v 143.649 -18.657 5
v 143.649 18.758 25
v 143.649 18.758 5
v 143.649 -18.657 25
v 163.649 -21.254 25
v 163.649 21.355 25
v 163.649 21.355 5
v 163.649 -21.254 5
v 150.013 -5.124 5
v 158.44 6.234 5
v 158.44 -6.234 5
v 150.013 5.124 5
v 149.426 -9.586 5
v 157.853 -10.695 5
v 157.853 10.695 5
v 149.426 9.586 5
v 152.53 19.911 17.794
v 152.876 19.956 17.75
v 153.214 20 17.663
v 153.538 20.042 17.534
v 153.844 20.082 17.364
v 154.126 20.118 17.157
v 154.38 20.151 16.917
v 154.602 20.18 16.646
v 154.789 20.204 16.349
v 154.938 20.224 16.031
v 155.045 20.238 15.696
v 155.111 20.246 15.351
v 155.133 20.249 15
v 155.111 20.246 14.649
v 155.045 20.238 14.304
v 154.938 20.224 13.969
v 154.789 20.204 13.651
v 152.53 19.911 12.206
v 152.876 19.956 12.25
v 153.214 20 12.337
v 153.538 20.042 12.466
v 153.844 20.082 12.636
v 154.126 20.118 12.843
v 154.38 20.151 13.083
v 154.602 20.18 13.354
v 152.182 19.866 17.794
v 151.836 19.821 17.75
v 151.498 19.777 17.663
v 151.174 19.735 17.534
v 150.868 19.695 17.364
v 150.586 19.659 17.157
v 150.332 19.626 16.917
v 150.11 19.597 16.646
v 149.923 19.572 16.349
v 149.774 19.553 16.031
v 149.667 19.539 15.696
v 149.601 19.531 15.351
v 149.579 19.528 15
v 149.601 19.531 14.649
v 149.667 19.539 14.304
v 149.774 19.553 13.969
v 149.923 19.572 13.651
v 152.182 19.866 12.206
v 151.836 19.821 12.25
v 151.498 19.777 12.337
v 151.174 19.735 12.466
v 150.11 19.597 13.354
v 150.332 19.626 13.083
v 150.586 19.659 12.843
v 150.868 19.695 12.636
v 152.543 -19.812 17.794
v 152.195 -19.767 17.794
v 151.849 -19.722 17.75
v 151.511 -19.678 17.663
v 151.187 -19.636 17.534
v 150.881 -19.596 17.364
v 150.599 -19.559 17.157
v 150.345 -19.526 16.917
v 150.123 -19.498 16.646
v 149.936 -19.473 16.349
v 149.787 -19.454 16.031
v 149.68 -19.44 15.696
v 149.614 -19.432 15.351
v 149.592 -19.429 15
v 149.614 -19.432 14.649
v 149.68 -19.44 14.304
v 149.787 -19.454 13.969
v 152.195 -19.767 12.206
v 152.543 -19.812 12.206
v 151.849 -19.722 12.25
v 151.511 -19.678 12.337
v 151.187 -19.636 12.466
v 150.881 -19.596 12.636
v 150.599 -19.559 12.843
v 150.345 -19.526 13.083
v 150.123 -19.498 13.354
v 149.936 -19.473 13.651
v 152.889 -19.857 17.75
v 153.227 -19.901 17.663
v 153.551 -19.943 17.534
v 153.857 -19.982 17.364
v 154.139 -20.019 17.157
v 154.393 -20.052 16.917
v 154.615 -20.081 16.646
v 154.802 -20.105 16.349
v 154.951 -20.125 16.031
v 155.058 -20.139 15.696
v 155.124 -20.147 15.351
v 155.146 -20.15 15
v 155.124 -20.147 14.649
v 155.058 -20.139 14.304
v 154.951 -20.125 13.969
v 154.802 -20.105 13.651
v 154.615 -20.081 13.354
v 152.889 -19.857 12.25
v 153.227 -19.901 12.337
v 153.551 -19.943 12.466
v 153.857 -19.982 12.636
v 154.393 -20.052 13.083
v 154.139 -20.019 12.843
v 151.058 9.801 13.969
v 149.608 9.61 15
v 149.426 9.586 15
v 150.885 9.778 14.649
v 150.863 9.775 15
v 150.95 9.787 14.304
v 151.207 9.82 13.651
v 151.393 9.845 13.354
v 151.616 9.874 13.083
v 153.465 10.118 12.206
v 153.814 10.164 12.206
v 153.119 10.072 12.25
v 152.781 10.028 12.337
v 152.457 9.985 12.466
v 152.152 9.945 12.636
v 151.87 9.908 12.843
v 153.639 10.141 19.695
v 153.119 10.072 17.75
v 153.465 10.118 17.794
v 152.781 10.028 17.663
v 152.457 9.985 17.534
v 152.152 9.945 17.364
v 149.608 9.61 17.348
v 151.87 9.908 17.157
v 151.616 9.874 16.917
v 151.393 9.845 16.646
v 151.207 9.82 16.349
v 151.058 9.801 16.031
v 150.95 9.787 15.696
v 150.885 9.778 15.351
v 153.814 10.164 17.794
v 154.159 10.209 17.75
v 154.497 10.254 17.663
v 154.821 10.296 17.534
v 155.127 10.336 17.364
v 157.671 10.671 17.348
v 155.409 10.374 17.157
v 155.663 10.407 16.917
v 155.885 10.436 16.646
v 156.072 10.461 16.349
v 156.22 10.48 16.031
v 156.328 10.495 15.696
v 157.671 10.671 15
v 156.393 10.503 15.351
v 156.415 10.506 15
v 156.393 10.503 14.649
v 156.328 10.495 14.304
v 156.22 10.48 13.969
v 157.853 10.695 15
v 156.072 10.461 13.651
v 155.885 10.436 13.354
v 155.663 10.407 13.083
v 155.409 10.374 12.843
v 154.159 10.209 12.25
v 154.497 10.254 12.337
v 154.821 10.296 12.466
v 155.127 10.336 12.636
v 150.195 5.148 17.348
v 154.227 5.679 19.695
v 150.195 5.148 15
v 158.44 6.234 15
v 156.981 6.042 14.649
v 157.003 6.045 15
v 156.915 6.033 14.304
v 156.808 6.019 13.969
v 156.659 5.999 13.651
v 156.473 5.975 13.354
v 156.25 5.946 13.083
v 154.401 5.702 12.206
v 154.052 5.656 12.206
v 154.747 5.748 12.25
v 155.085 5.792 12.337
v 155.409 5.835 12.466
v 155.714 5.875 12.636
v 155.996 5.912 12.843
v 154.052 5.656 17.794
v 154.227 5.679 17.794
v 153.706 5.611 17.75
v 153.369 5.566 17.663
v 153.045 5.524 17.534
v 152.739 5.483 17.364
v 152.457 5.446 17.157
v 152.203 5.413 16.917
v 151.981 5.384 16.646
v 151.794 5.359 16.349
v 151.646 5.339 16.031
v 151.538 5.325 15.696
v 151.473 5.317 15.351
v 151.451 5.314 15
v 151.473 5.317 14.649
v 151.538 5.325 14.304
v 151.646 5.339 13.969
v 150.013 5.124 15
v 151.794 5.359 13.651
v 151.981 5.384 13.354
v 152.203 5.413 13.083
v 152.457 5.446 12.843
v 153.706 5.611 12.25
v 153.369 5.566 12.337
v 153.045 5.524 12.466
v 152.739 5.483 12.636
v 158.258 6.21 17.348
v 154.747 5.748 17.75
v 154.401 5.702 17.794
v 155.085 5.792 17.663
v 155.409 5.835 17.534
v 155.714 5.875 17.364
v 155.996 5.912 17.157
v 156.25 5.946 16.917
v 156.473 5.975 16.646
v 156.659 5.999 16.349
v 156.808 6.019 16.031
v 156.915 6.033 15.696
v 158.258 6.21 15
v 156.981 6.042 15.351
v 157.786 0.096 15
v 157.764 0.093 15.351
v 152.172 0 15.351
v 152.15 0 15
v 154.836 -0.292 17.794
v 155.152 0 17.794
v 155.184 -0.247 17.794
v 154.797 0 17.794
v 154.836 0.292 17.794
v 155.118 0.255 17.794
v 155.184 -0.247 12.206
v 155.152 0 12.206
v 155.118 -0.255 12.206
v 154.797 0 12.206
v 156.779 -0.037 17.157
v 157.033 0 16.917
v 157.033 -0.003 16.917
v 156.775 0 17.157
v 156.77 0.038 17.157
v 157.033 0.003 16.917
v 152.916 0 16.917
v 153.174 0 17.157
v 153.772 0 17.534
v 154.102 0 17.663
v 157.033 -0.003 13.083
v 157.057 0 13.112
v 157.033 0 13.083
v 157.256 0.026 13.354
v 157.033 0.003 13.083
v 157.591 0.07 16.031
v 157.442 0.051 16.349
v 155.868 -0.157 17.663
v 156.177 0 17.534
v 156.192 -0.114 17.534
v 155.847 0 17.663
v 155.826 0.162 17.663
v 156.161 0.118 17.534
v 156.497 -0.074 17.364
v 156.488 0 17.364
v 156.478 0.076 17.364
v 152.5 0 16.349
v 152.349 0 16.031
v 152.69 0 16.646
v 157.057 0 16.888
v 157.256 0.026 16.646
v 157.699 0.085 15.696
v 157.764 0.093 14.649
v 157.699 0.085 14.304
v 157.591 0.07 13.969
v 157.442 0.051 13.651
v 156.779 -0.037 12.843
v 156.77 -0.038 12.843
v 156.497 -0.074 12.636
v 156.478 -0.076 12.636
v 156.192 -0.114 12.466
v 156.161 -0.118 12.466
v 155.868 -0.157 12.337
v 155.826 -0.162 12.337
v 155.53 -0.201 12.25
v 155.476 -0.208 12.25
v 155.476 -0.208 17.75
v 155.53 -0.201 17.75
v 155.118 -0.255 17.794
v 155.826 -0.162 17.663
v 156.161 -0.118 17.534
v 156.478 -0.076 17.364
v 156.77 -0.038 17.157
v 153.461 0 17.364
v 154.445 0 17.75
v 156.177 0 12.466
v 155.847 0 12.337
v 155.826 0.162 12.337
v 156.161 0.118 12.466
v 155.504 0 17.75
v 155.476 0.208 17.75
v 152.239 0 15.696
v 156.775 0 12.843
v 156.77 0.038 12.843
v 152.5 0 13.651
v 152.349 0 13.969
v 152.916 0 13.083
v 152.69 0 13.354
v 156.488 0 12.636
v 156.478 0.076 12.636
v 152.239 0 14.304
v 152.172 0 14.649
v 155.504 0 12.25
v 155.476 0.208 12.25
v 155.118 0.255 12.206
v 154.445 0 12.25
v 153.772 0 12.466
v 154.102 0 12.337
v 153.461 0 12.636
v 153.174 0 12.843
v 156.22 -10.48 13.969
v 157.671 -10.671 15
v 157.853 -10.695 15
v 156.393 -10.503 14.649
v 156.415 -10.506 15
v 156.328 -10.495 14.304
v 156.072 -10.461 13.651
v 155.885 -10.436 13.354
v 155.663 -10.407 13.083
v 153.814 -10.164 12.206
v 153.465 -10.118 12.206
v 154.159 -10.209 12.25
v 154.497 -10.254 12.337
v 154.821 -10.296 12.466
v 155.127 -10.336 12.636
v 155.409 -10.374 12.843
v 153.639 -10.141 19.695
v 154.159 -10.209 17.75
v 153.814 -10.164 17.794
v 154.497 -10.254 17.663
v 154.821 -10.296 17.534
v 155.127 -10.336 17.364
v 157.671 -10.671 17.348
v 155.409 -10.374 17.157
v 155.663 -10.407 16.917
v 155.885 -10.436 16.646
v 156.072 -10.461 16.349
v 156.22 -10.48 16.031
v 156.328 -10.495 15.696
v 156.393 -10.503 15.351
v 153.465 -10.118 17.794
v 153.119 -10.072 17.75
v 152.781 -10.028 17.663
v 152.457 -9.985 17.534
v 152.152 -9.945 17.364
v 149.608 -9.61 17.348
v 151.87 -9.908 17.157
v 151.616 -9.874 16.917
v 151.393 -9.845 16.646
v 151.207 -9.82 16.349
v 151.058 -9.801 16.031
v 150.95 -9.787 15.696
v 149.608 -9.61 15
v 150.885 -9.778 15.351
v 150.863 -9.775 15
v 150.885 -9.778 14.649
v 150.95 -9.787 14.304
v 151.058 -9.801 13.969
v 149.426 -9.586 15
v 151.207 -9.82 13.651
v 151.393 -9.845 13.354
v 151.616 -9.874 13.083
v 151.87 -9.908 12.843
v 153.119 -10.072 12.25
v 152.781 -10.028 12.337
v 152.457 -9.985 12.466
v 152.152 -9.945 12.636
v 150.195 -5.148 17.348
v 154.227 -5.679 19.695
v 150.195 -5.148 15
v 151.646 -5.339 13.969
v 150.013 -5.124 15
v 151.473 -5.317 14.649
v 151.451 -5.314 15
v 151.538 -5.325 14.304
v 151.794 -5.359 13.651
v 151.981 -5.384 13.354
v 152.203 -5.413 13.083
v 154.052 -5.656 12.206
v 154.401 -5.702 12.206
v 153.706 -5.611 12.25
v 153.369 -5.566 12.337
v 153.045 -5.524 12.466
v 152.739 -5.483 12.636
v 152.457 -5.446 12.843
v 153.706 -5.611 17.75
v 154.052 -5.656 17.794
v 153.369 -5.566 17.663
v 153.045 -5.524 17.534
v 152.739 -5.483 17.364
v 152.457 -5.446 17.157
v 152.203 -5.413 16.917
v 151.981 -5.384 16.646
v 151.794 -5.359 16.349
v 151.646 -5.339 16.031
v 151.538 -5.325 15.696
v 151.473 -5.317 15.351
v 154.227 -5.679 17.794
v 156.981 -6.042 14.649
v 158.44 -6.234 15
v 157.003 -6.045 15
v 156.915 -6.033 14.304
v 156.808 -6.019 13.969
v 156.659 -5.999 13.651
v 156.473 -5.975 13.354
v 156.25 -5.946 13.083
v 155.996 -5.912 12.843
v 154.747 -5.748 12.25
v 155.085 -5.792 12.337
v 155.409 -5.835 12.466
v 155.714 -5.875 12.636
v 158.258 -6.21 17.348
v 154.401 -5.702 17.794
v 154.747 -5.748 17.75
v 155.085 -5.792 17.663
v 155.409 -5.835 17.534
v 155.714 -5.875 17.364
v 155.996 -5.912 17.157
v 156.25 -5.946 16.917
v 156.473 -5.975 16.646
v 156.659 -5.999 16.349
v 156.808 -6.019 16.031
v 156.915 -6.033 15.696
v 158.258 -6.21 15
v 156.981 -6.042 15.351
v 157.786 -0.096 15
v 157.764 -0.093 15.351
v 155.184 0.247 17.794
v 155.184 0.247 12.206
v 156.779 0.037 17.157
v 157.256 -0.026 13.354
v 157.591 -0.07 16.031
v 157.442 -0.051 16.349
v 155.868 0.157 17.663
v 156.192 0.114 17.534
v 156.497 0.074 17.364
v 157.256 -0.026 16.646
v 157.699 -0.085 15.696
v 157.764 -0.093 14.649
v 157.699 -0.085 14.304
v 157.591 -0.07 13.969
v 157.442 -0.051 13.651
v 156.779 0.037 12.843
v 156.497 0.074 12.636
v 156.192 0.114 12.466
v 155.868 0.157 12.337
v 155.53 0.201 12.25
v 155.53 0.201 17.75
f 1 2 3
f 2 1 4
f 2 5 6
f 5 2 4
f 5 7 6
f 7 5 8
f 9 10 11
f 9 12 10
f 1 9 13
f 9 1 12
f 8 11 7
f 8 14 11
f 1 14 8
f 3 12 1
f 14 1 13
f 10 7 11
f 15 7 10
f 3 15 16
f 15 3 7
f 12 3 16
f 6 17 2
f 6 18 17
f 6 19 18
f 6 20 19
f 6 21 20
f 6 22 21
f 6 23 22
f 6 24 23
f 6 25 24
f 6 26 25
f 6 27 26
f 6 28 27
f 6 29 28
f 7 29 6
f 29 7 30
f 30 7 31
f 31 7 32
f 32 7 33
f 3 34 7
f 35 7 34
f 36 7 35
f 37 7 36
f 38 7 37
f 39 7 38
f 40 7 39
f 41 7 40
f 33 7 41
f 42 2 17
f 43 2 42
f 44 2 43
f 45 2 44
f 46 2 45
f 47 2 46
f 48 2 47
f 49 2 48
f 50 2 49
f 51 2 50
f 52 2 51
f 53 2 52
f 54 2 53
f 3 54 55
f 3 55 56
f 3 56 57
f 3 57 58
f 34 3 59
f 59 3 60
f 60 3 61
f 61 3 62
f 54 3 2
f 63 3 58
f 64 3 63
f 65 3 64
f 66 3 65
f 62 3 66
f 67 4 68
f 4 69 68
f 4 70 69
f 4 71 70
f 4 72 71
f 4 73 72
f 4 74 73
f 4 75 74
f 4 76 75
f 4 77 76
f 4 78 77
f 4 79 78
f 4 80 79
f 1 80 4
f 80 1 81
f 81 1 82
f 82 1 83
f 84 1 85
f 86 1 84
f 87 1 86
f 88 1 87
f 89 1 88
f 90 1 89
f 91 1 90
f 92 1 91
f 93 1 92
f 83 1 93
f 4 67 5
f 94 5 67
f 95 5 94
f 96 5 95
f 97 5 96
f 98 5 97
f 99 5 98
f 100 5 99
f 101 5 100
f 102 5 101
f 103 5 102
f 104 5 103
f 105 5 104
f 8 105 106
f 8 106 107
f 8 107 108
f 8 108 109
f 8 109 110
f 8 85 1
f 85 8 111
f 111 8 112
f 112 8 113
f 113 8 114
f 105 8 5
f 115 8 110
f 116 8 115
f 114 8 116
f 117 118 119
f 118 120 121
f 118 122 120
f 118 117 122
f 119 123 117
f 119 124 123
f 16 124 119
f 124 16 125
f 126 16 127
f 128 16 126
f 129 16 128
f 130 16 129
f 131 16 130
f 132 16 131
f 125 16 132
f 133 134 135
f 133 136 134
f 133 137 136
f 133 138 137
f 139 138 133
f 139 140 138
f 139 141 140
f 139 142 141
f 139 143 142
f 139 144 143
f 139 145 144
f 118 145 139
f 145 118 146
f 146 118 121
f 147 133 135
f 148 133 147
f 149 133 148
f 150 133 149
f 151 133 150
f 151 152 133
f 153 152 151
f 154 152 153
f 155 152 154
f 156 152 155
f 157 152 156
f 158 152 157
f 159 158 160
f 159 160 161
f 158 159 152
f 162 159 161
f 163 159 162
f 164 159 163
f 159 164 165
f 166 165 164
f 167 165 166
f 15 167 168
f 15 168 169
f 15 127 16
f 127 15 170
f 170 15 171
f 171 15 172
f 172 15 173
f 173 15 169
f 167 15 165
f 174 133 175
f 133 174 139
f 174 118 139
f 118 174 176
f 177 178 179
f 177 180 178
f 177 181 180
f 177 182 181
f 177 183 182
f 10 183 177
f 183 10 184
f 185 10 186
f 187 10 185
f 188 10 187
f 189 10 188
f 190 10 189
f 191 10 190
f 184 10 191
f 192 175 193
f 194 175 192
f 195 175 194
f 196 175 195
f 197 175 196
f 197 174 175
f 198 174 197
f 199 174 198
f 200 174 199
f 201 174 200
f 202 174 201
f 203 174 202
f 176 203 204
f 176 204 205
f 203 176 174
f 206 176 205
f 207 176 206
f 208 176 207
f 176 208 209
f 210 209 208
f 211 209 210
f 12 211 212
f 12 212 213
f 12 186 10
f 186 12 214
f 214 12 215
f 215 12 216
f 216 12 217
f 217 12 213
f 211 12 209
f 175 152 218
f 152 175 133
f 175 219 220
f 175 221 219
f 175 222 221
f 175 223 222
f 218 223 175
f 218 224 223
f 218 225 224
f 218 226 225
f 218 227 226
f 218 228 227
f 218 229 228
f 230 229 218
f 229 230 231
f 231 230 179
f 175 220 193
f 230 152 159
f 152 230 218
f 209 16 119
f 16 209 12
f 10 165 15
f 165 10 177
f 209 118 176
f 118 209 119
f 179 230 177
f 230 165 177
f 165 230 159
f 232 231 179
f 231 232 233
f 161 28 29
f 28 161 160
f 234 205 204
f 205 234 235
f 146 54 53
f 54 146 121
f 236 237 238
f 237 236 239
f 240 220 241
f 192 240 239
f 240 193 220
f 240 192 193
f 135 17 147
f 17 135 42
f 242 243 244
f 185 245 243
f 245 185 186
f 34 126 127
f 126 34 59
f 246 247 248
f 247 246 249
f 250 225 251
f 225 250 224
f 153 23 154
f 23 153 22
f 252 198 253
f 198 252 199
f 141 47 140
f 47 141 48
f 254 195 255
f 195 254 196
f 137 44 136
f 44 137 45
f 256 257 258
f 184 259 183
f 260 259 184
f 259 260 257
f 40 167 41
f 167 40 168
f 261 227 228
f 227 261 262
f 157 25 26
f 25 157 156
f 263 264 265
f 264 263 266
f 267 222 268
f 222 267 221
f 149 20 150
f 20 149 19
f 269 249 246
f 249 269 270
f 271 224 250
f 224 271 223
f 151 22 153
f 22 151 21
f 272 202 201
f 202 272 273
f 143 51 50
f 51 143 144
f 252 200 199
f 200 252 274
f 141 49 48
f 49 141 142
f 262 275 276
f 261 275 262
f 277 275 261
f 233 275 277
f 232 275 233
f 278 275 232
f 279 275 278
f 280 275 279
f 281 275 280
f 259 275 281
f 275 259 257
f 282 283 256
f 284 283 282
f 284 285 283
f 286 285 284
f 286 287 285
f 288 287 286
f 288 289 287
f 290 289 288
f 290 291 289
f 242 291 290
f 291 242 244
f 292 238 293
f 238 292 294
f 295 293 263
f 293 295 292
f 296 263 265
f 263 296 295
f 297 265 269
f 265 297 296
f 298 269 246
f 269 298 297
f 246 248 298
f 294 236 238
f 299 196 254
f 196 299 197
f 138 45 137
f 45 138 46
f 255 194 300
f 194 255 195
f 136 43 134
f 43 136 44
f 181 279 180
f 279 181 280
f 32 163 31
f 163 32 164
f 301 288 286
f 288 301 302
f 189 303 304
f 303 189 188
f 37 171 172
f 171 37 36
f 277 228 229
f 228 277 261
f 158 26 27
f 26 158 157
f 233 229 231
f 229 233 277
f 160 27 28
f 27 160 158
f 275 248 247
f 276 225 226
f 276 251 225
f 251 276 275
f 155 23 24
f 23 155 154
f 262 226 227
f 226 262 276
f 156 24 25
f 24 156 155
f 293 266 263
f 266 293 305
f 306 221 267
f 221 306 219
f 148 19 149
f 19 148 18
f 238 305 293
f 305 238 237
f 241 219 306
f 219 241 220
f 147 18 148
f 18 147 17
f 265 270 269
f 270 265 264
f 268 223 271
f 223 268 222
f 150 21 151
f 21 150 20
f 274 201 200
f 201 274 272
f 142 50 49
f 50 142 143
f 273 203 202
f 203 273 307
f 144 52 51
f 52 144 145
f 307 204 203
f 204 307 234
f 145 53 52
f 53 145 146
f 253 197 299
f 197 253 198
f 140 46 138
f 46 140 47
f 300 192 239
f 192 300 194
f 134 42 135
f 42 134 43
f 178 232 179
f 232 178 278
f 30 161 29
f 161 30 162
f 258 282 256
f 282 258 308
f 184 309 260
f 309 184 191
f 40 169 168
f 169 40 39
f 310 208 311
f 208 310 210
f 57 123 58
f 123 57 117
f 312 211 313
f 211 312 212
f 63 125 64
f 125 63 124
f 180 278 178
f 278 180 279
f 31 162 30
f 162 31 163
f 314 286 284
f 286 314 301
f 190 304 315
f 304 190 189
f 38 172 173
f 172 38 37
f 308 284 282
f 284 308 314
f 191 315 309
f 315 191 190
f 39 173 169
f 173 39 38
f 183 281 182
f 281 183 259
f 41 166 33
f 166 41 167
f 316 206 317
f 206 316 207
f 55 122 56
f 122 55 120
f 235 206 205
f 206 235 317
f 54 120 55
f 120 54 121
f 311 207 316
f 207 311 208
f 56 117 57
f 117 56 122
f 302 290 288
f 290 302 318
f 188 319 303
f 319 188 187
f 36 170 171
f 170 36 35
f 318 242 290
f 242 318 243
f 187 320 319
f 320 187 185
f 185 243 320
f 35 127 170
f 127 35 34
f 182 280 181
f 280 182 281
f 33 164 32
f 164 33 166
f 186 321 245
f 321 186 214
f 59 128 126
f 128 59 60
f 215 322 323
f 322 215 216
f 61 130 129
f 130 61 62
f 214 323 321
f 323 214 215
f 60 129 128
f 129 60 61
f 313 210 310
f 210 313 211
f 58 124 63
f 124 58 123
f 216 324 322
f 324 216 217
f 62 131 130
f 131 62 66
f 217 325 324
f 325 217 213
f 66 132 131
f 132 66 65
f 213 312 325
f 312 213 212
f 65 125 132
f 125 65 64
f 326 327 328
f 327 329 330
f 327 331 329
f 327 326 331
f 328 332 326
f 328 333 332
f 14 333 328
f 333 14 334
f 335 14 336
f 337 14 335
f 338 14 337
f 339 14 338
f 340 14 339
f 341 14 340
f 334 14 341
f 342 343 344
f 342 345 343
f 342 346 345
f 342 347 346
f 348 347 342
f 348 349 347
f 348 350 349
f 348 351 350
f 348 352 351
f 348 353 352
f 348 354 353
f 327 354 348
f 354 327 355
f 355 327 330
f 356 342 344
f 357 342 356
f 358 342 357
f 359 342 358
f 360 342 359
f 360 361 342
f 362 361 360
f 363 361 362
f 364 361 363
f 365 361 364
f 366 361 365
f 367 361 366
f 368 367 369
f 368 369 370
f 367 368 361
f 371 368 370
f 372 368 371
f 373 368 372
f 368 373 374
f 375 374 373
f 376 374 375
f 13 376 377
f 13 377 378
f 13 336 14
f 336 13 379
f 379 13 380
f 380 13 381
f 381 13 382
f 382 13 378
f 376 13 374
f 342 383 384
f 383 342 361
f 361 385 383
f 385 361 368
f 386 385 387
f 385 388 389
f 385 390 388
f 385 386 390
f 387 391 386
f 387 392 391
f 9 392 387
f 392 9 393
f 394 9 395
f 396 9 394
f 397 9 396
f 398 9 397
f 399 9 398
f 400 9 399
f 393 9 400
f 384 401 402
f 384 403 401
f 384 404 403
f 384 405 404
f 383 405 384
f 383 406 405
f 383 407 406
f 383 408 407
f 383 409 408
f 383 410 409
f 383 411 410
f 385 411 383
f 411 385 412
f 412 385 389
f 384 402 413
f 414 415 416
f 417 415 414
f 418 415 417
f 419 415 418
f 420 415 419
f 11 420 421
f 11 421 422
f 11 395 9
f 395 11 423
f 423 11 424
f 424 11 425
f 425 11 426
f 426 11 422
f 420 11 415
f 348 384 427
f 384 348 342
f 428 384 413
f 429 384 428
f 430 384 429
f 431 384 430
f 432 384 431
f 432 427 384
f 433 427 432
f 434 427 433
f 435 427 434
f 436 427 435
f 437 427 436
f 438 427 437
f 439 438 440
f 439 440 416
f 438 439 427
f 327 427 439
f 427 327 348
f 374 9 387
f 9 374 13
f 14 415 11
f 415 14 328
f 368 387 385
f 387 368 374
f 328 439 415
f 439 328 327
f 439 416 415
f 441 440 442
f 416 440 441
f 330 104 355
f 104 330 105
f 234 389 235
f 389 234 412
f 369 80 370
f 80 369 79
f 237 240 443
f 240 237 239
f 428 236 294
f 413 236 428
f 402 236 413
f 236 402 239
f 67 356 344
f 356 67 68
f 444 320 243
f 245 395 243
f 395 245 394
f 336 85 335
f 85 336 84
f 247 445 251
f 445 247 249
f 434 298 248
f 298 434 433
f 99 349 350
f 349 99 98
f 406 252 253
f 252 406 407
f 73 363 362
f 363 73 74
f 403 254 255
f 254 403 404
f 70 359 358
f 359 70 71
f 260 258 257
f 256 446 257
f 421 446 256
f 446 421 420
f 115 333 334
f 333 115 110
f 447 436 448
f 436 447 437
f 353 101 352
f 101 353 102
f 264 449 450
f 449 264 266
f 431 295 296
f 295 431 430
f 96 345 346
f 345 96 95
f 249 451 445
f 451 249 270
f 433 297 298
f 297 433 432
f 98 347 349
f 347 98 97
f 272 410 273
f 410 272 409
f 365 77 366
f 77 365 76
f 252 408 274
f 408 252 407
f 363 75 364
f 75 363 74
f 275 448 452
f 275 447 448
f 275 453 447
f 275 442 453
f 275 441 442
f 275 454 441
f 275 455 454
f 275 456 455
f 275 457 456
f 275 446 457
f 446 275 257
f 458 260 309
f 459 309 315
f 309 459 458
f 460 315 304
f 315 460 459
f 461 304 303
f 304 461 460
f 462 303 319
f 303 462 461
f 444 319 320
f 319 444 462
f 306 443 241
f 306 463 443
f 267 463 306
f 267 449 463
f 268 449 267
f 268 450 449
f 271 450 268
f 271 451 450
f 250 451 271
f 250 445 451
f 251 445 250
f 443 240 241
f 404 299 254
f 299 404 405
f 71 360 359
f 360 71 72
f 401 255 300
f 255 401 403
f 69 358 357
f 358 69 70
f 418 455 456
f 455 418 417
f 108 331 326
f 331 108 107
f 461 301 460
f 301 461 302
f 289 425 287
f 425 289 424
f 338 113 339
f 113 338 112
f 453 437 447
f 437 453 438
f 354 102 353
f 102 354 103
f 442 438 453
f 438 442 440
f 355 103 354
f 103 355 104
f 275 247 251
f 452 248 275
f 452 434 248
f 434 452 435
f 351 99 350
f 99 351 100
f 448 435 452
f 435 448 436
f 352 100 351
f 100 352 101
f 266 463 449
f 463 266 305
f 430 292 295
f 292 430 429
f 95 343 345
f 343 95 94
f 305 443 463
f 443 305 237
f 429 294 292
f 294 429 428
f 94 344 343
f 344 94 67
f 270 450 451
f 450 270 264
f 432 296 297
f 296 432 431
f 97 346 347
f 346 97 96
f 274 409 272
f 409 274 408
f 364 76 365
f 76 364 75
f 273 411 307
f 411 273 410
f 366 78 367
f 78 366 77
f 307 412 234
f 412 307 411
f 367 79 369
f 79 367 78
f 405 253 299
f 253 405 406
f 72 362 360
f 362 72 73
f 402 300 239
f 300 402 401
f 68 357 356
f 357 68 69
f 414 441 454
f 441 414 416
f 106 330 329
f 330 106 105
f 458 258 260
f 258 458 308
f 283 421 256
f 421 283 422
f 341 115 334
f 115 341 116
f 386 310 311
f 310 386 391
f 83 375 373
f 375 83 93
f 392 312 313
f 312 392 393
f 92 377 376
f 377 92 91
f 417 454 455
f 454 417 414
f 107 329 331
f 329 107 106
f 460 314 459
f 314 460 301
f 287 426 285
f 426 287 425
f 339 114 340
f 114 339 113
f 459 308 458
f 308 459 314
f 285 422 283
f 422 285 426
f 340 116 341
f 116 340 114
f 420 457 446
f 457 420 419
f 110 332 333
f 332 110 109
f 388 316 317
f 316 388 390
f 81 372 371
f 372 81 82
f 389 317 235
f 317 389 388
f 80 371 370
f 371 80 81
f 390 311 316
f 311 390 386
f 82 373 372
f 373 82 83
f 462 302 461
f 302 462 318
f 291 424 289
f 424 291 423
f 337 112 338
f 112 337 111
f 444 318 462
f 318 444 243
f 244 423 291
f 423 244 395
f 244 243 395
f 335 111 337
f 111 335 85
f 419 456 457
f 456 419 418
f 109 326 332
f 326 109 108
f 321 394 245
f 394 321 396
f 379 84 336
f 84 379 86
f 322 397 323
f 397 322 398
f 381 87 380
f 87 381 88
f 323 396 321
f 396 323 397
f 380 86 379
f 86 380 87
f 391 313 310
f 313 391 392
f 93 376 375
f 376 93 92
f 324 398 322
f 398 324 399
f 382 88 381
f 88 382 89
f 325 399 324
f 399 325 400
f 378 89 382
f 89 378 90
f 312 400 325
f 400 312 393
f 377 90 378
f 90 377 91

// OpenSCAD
difference() {
	intersection() {
		translate(v = [143.6485188534, -100, 5]) {
			cube(size = [20, 200, 20]);
		}
		hull() {
			rotate(a = [0, 0, 7.4000000000]) {
				cube(size = [500, 0.1000000000, 30.0500000000]);
			}
			rotate(a = [0, 0, -7.4000000000]) {
				cube(size = [500, 0.1000000000, 30.0500000000]);
			}
		}
	}
	mirror(v = [0, 0, 0]) {
		translate(v = [0, 0, 15.0000000000]) {
			rotate(a = [0, 0, 7.5000000000]) {
				translate(v = [153.6485188534, 0, 0]) {
					rotate(a = [90, 0, 0]) {
						union() {
							translate(v = [0, 0, false]) {
								cylinder($fn = 50, d = 5.6000000000, h = 20.5000000000);
							}
							translate(v = [0, 0, -15.4500000000]) {
								cylinder($fn = 50, d = 9.2000000000, h = 15.5000000000);
							}
							translate(v = [0, 0, 10]) {
								rotate(a = [90, 0, 0]) {
									union() {
										rotate(a = [-90, 90, 0]) {
											cylinder($fn = 6, d = 9.3900000000, h = 4.5000000000);
										}
										translate(v = [-4.2500000000, 0, 0]) {
											cube(size = [8.5000000000, 4.5000000000, 100]);
										}
									}
								}
							}
						}
					}
				}
			}
		}
	}
	mirror(v = [0, 180, 0]) {
		translate(v = [0, 0, 15.0000000000]) {
			rotate(a = [0, 0, 7.5000000000]) {
				translate(v = [153.6485188534, 0, 0]) {
					rotate(a = [90, 0, 0]) {
						union() {
							translate(v = [0, 0, false]) {
								cylinder($fn = 50, d = 5.6000000000, h = 20.5000000000);
							}
							translate(v = [0, 0, -15.4500000000]) {
								cylinder($fn = 50, d = 9.2000000000, h = 15.5000000000);
							}
							translate(v = [0, 0, 10]) {
								rotate(a = [90, 0, 0]) {
									union() {
										rotate(a = [-90, 90, 0]) {
											cylinder($fn = 6, d = 9.3900000000, h = 4.5000000000);
										}
										translate(v = [-4.2500000000, 0, 0]) {
											cube(size = [8.5000000000, 4.5000000000, 100]);
										}
									}
								}
							}
						}
					}
				}
			}
		}
	}
}
/***********************************************
*********      SolidPython code:      **********
************************************************
 
cq = 50
render = False

import os
os.environ["PRINTEDSCOPE_QUALITY"] = str(cq)

from lib.model_parameters import *
from solid import *
from solid.utils import *
import numpy as np


def s111g2p01():
    m = cylinder(h=g2p2_thickness+g2p03_guider_bolt['dk'], d=g2p2_border_ind+2*g2p2_border_thickness, segments=cq)
    m-= up(g2p2_thickness+5)(cylinder(d=g2p2_border_ind, h=g2p03_guider_bolt['dk']*1.5+clear, segments=cq))
    m-= (up(g2p2_thickness)(cylinder(d1=g2p2_border_ind-10, d2=g2p2_border_ind, h=5+clear, segments=cq)))
    
    for i in range(8):
        m-=rotate([0,0,360/8*i])(
            translate([g2p2_border_ind/2,0,g2p2_thickness+g2p03_guider_bolt['dk']*0.5])(
                (bolt_hole(g2p03_guider_bolt, align='head', rotation=[0,-1,0]))
            ),
            translate([g2p2_border_ind/2+g2p2_border_wall,-50,0])(
                (cube(100))
            )
        )

    m+= cylinder(h=g2p2_thickness+g2p03_guider_bolt['dk'], d=24, segments=cq)
    m-= up(clear)(cylinder(h=g2p2_thickness+g2p03_guider_bolt['dk'], d=M5['d'], segments=cq))
    m-= rotate(30)(down(clear)(cylinder(h=g2p2_thickness+g2p03_guider_bolt['dk']+clear-5, d=M5['e'], segments=6)))

    for i in range(3):
        m-=rotate([0,0,360/3*i])(
            translate([8, 0, -clear])(
                cylinder(h=M3['k'], d=M3['dk'], segments=cq),
                cylinder(h=50, d=M3['d'], segments=cq),
                )
        )

    return m

def s111g2p02():
    m = cylinder(h=4, d=24, segments=cq)
    #m-= up(g2p2_thickness+5)(cylinder(d=g2p2_border_ind, h=g2p03_guider_bolt['dk']*1.5+clear, segments=cq))
    #m-= (up(g2p2_thickness)(cylinder(d1=g2p2_border_ind-10, d2=g2p2_border_ind, h=5+clear, segments=cq)))
    
    for i in range(8):
        m-=rotate([0,0,360/8*i])(
            translate([g2p2_border_ind/2,0,g2p2_thickness+g2p03_guider_bolt['dk']*0.5])(
                (bolt_hole(g2p03_guider_bolt, align='head', rotation=[0,-1,0]))
            ),
            translate([g2p2_border_ind/2+g2p2_border_wall,-50,0])(
                (cube(100))
            )
        )

    #m+= cylinder(h=5, d=10)
    m+= (rotate(30)(cylinder(h=6, d2=M5['d']+4, d1=M5['d']+6, segments=cq)))
    m-= (rotate(30)(cylinder(h=3, d=M5['e'], segments=6)))
    m-= (rotate(30)(cylinder(h=10, d=M5['d'], segments=cq)))

    for i in range(3):
        m-=rotate([0,0,360/3*i])(
            translate([8, 0, -clear])(
                up(2)(rotate(30)(cylinder(h=M3['k'], d=M3['e'], segments=6))),
                cylinder(h=50, d=M3['d'], segments=cq)
                )
        )

    return m

def s111g2p03():
    m = cube(0)

    # lista pro pohyb lozisek AZ
    m+= down(0)(
            cylinder(d=g2_octangle_do+g2p03_guider_width, h=g2p03_guider_height, segments=cq)
        )
    m-= (down(clear)(
            cylinder(d=g2_octangle_do-g2p03_guider_width, h=g2p03_guider_height+clear*2+10, segments=cq)
        ))

    # krajni listy do stredu s dirou pro srouby
    m+= (rotate([0, 0, -360/24])(
            right(g2p03_middle_diameter/2-15)(
                cube([(g2_octangle_do-g2p03_middle_diameter), g2p03_guider_width, g2p03_guider_height])
            )
        ))
    m+= rotate([0, 0, 360/24])(
            right(g2p03_middle_diameter/2-15)(
                back(g2p03_guider_width)(
                    cube([(g2_octangle_do-g2p03_middle_diameter), g2p03_guider_width+1, g2p03_guider_height])
                )
            )
        )
    # Stredni lista dilu
    m+= (right(g2p03_middle_diameter/2-g2p03_guider_height)(
            back(50)(
                cube([g2p03_guider_width, 100, g2p03_guider_height])
            )
        ))

    p_bolt = g2p03_guider_bolt


    mount_a = cube([p_bolt['dk']*2, p_bolt['l']/2+p_bolt['k']-clear, p_bolt['dk']*2])
    mount_a-= translate([p_bolt['dk'], p_bolt['l']/2+clear, p_bolt['dk']])(
            rotate([90, 0, 0])(
                cylinder(h=p_bolt['l'], d=p_bolt['d'], segments=cq)
            )
        )
    mount_a-= translate([p_bolt['dk'], p_bolt['l']/2+p_bolt['l'], p_bolt['dk']])(
            rotate([90, 0, 0])(
                cylinder(h=p_bolt['l'], d=p_bolt['dk'], segments=cq)
            )
        )

    mount_a = rotate([0, 0, -360/12])(
            right(g2_guider_diameter/2-p_bolt['dk']*2-g2p03_guider_height)(
                mount_a
                )
            )

    mount_b = cube([p_bolt['dk']*2, p_bolt['l']/2-clear, p_bolt['dk']*2])
    mount_b-= translate([p_bolt['dk'], p_bolt['l']/2+clear, p_bolt['dk']])(
            rotate([90, 0, 0])(
                cylinder(h=p_bolt['l'], d=p_bolt['d'], segments=cq)
            )
        )
    mount_b-= translate([p_bolt['dk'], p_bolt['m'], p_bolt['dk']])(
            rotate([0, -90, 0])(
                nut_pocket(p_bolt)
            )
        )

    mount_b = rotate([0, 0, 360/12])(
                right(g2_guider_diameter/2-p_bolt['dk']*2-g2p03_guider_height)(
                    back(p_bolt['l']/2)(
                        mount_b
                    )
                )
            )


    m += up(g2p03_floar_thickness)(mount_a)
    m += up(g2p03_floar_thickness)(mount_b)


    # oriznuti precnivajicich casti mimo osmiuhelnik
    m = intersection()(
        m,
        up(-250)(hull()(
            rotate([0, 0, 360/24])(cube([500, 0.1, 500])),
            rotate([0, 0, -360/24])(cube([500, 0.1, 500]))
        ))
    )
    m=intersection()(
        m,
        cylinder(d=g2_octangle_do+g2p03_guider_width, h=100, segments=cq)
    )


    p_bolt['l'] = 20
    for x in [0,180]:
        m -= mirror([0, x, 0])(
            up(g2p03_guider_height/2)(
                rotate([0,0,-360/24])(
                    translate([g2_octangle_do/2-g2p03_guider_height, 10, 0])(
                        (bolt_hole(p_bolt, rotation=[-1,0,0], align='begin'))
                    )
                ),
                rotate([0,0,360/24])(
                    translate([g2_octangle_di/2-g2p03_guider_height*2.5, -10, 0])(
                        (bolt_hole(p_bolt, rotation=[1,0,0], align='begin'))
                    )
                ),
                rotate([0,0,360/24])(
                    translate([g2_octangle_do/2, -10, 0])(
                        (bolt_hole(p_bolt, rotation=[1,0,0], align='begin', head_overlap = 100))
                    )
                )
            )
        )

    m-= (translate([g2p03_middle_diameter/2-g2p03_guider_height+10, 0, g2p03_guider_height/2])(
            bolt_hole(p_bolt, rotation=[0,1,0], align='begin')
        ))
    #m+= cylinder(d=g2p03_middle_diameter-20, )

    return m

def s111g2m05():


    p_bolt = M8.copy()


    m = cube(0)
    p_bolt['l'] = 20
    for x in [0,180]:
        m += mirror([0, x, 0])(
            up(g2p03_guider_height/2)(
                rotate([0,0,-360/24])(
                    translate([g2_octangle_do/2-g2p03_guider_height, 10, 0])(
                        (bolt_hole(p_bolt, rotation=[-1,0,0], align='begin'))
                    )
                ),
                rotate([0,0,360/24])(
                    translate([g2_octangle_di/2-g2p03_guider_height*2.5, -10, 0])(
                        (bolt_hole(p_bolt, rotation=[1,0,0], align='begin'))
                    )
                ),
                rotate([0,0,360/24])(
                    translate([g2_octangle_do/2, -10, 0])(
                        (bolt_hole(p_bolt, rotation=[1,0,0], align='begin', head_overlap = 100))
                    )
                )
            )
        )

    m+= (translate([g2p03_middle_diameter/2-g2p03_guider_height+10, 0, g2p03_guider_height/2])(
            bolt_hole(p_bolt, rotation=[0,1,0], align='begin')
        ))

    return m

def s111g2p08_pipe_rectangle(l = 100, angle = False):
    shift = 0
    if angle: shift = base_pipe['D']
    m = translate([-shift, -base_pipe['D']/2-5, -3])(
            cube([l+shift, base_pipe['D']+10, 4]),
            translate([0,base_pipe['D']/2+5,base_pipe['D']/2+5])(
                rotate([0,90,0])(
                    cylinder(d=base_pipe['D']+8, h=l+shift, segments=cq)
                )
            )
    )
    m = hull()(m)

    m-= translate([-shift, -base_pipe['D']/2-2, -2])(
            translate([0,base_pipe['D']/2+2,base_pipe['D']/2+2])(
                rotate([0,90,0])(
                    cylinder(d=base_pipe['D'], h=l+shift+1, segments=cq)
                )
            )
    )

    m-= (translate([l/2,0,base_pipe['D']+1])(
                bolt_hole(M4, align='begin', l=19, nut_type='trougth', nut = -0.1)
            )
        )
    m+= (translate([l/2-5,-5,-3])(
        cube([10, 10, layer])
        ))

    if angle:
        m-= rotate([0,0,45])(translate([-50, 0, -50])(cube(100)))
    return m

def s111g2p08_a():
    m = s111g2p03()
    
    # Dily pro pridelani trubek skrz
    m+= intersection()(
            translate([g2_octangle_do/2-6, 0, g2p03_guider_height])(
                rotate([0,0,+45+90])(
                    left(15)(s111g2p08_pipe_rectangle(l=100, angle = 0))
                )
            ),
            (cube(300))
        )
    m+= intersection()(
            translate([g2_octangle_do/2-6, 0, g2p03_guider_height])(
                rotate([0,0,-45-90])(
                    left(15)(s111g2p08_pipe_rectangle(l=100, angle = 0)),
                )
            ),
            (back(300)(cube(300)))
        )
    
    # kostka pro lepší tisk podpory na spodní straně.
    m+= (translate([g2_octangle_do/2-6, 0, g2p03_guider_height])(
            rotate([0,0,-45-90])(
                translate([-10,-base_pipe['D']/2-5, -3-layer])(cube([200, base_pipe['D']+10, layer]))
        )))

    m=intersection()(
        m,
        cylinder(d=g2_octangle_do+g2p03_guider_width, h=100, segments=cq)
    )


    ##
    ## Cast pro pridelani svisle tyce
    ##



    vect = np.array([30, 400/2+15, 600]) - np.array([g2_octangle_di-40, g2_octangle_di+30, g2p03_guider_height])
    vect = np.array([g2_octangle_di/2 - 50, g2_octangle_di/2 - 370/2 - 50, 600 - g2p03_guider_height])

    vect = np.array([g2_octangle_di/2 - 20, g2_octangle_di/2+30, g2p03_guider_height]) - np.array([0, g2_axis_distance/2+15, telescope_axis_height])
    vect *= [1,1,-1]
    rvect = get_rotation(vect)+[0,0,180]



    print("VECT")
    print(vect)
    print(rvect)

    wall = 5

    ##
    ##  posuv dilu pro tyce - [f/2-20, f/2+30, guider_height]
    ##
    ##

    m += rotate([0,0,0]+np.array([0,0,-45]))(
            translate([g2_octangle_f/2-20, g2_octangle_f/2+30, 0])(
                rotate([0,0,0])(
                    difference()(
                        cylinder(d=base_pipe['D']+3*wall, h=g2p03_guider_height+5, segments=cq),
                    )
                )
            ),

            translate([g2_octangle_f/2-20, g2_octangle_f/2+30, g2p03_guider_height])(
                rotate(rvect-[0,0,0])(
                    difference()(
                        cylinder(d=base_pipe['D']+2*wall, h=5, segments=cq),
                        cylinder(d=base_pipe['D'], h=5, segments=cq)
                    )
                )
            )
        ) - cylinder(d=g2_octangle_do+g2p03_guider_width, h=g2p03_guider_height, segments=cq)


    m -= rotate([0,0,0]+np.array([0,0,-45]))(
            translate([g2_octangle_f/2-20, g2_octangle_f/2+30, g2p03_guider_height])(
                rotate(rvect-[0,0,0])(
                    up(2)(
                        (cylinder(d=base_pipe['D'], h=50, segments=cq))
                    ),
                    up(-50)(
                        (cylinder(d=M5['d'], h=100, segments=cq))
                    ),
                    up(-50-5+2)(
                        (cylinder(d=M5['dk']+1, h=50, segments=cq))
                    )

                )
            )
        )


    m = intersection()(
        m,
        up(-250)(hull()(
            rotate([0, 0, 360/24])(cube([500, 0.1, 500])),
            rotate([0, 0, -360/24])(cube([500, 0.1, 500]))
        ))
    )

    return m


def s111g2p08_b():
    return mirror([1,0,0])(s111g2p08_a())


def s111g2p08_c():
    m = s111g2p08_a()
    

    vect2 = np.array([g2_octangle_di/2 + 30, g2_octangle_di/2 - 20, g2p03_guider_height]) - np.array([0, -g2_axis_distance/2-15, telescope_axis_height])
    vect2 *= [1,1,-1]
    rvect2 = get_rotation(vect2)+[0,0,180]

    wall = 5

    ##
    ##  posuv dilu pro tyce - [f/2-20, f/2+30, guider_height]
    ##
    ##

    m += rotate([0,0,0]+np.array([0,0,-45]))(
            translate([g2_octangle_f/2+30, g2_octangle_f/2-20, 0])(
                rotate([0,0,0])(
                    difference()(
                        cylinder(d=base_pipe['D']+3*wall, h=g2p03_guider_height+5, segments=cq),
                    )
                )
            ),

            translate([g2_octangle_f/2+30, g2_octangle_f/2-20, g2p03_guider_height])(
                rotate(rvect2-[0,0,0])(
                    difference()(
                        down(5)(cylinder(d=base_pipe['D']+2*wall, h=10, segments=cq)),
                        cylinder(d=base_pipe['D'], h=5, segments=cq)
                    )
                )
            )
        ) - cylinder(d=g2_octangle_do+g2p03_guider_width, h=g2p03_guider_height, segments=cq)


    m -= rotate([0,0,0]+np.array([0,0,-45]))(
            translate([g2_octangle_f/2+30, g2_octangle_f/2-20, g2p03_guider_height])(
                rotate(rvect2-[0,0,0])(
                    up(2)(
                        (cylinder(d=base_pipe['D'], h=50, segments=cq))
                    ),
                    up(-50)(
                        (cylinder(d=M5['d'], h=100, segments=cq))
                    ),
                    up(-50-5+2)(
                        (cylinder(d=M5['dk']+1, h=50, segments=cq))
                    )

                )
            )
        )

    return m


def s111g2p08_d():
    return mirror([1,0,0])(s111g2p08_c())


def s111g2d08(l=100):
    m = back(20)(
            cube([base_pipe['D']*2, 80, base_pipe['D']*2], center=True)
        )
    m-= translate([0,0,base_pipe['D']*0.75])(
            rotate(-45)(
                cube([2, 100, base_pipe['D']*2.5], center=True)
            )
        )
    m-= translate([0, base_pipe['D']/2+1, 0])(
            rotate([90,0,0])(cylinder(d=base_pipe['D'], h=200, segments=cq))
        )
    m-= translate([0,-l/2, 0])(
            cylinder(h=100, d=M4['d'], center=True, segments=cq)
        )
    #m = s111g2p08_pipe_rectangle(angle = 45)
    return m


def s111g2d09(l=100):
    m = cube([base_pipe['D']*2, 40, base_pipe['D']*2], center=True)
    
    m-= (translate([0, 100, 0])(
            rotate([90,0,0])(cylinder(d=base_pipe['D'], h=200, segments=cq))
        ))

    m-= translate([0,0, 0])(
            cylinder(h=100, d=M4['d'], center=True, segments=cq)
        )
    #m = s111g2p08_pipe_rectangle(angle = 45)
    return m

def s111g2p09():
    m = s111g2p03()

    a = (g2_octangle_do/2-6)/math.sqrt(2)

    m += translate([a, -75, g2p03_guider_height])(
            rotate([0,0,90])(
                s111g2p08_pipe_rectangle(l=150)
            )
        )
    m = intersection()(
        m,
        up(-250)(hull()(
            rotate([0, 0, 360/24])(cube([500, 0.1, 500])),
            rotate([0, 0, -360/24])(cube([500, 0.1, 500]))
        ))
    )
    return m

def s111g2p04():
    m= down(0)(
            cylinder(d=g2_octangle_do+g2p03_guider_width, h=g2p03_guider_height, segments=cq)
        )
    m-= (down(clear)(
            cylinder(d=g2_octangle_di-g2p03_guider_width*2, h=g2p03_guider_height+clear*2, segments=cq)
        ))

    r= up(g2p03_guider_height/2+g2p03_guider_bolt['dk'])(
            cylinder(d=g2_octangle_do-g2p03_guider_width, h=g2p03_guider_height, segments=cq)
        )

    m -= (r)
    m = intersection()(
        m,
        (hull()(
            rotate([0, 0, 360/48-0.1])(cube([500, 0.1, g2p03_guider_height+clear])),
            rotate([0, 0, -360/48+0.1])(cube([500, 0.1, g2p03_guider_height+clear]))
        ))
    )


    bolt = g2p03_guider_bolt.copy()
    bolt['l'] = 5
    for x in [0,180]:
        m -= mirror([0, x, 0])(
            up(g2p03_guider_height/2)(
                rotate([0,0,360/48])(
                    translate([g2_octangle_do/2-g2p03_guider_height, 0, 0])(
                        (bolt_hole(bolt, rotation=[-1,0,0], align='begin', nut_type='nut_pocket', nut=10, overlap = 10))
                    )
                ),
                rotate([0,0,360/48])(
                    translate([g2_octangle_do/2, 0, 0])(
                        (bolt_hole(bolt, rotation=[-1,0.5,0], align='begin', nut_type='nut_pocket', nut=10, overlap = 10))
                    )
                )
            )
        )


    return m



def s111g2m04():
    m = down(0)(
            cylinder(d=g2_octangle_do+g2p03_guider_width, h=10, segments=cq)
        )
    m-= (down(clear)(
            cylinder(d=g2_octangle_di-g2p03_guider_width*2, h=g2p03_guider_height+clear*2, segments=cq)
        ))
    return m

def s111g2p05():
    m = translate([g2_octangle_di/2-g2p03_guider_height*3+5,-100,5])(
        cube([g2p03_guider_height-10, 200, g2p03_guider_height-10]))
    

    m = intersection()(
        m,
        (hull()(
            rotate([0, 0, 360/48-0.1])(cube([500, 0.1, g2p03_guider_height+clear])),
            rotate([0, 0, -360/48+0.1])(cube([500, 0.1, g2p03_guider_height+clear]))
        ))
    )



    bolt = g2p03_guider_bolt.copy()
    bolt['l'] = 5
    for x in [0,180]:
        m -= mirror([0, x, 0])(
            up(g2p03_guider_height/2)(
                rotate([0,0,360/48])(
                    translate([g2_octangle_di/2-g2p03_guider_height*2.5, 0, 0])(
                        (bolt_hole(bolt, rotation=[-1,0,0], align='begin', nut_type='nut_pocket', nut=10, overlap = 10))
                    )
                )
            )
        )



    return m


def s111g2p06():
    m = translate([-70, 0, 0])(
            cube([g3_axis_diameter+40, 30, g3_axis_diameter/3+base_pipe['D']*2])
        )

    m-=translate([0, -clear/2, base_pipe['D']*2+g3_axis_diameter/2])(
            rotate([-90, 0, 0])(
                cylinder(d=g3_axis_diameter+2*g3_axis_space, h=30+clear, segments=cq)
            )
        )

    for x in [-1, 1]:
        m-=translate([0, 0, base_pipe['D']*2+g3_axis_diameter/2])(
                rotate([0, 30*x, 0])(
                    translate([0, 10, -g3_axis_diameter/2-g2_bearing_az['D']/2])(
                        rotate([90, 0, 0])(
                            (bolt_hole(g2_bearing_az['bolt'], l=4.7-clear, nut_type='nut_pocket', nut=10))
                        )
                    ),
                    translate([0, g2_bearing_az['bolt']['m']+g2_bearing_az['B']+5, -g3_axis_diameter/2-g2_bearing_az['D']/2])(
                        rotate([90, 0, 0])(
                            (cylinder(h=30, d=g2_bearing_az['D']+1, segments=cq))
                        )
                    )
                )
            )

        m-= translate(np.array([(g3_axis_diameter+10)/2,15,10])*[x, 1, 1])(
            rotate([90, 0, 0])(
                nut_pocket(M5)
            ),
            up(-10)(
                bolt_hole(M5, l=20)
            )
        )



    return down(base_pipe['D']*2+g3_axis_diameter/2)(m)

def s111g2p07():
    m = translate([-g3_axis_diameter/2-20, -15, -10])(
        cube([g3_axis_diameter+40, 30, 15])
    )

    v = norm_vector([g2_octangle_f/2-30, 15, -600])
    v2= norm_vector([-g2_octangle_f/2, -g2_octangle_f+base_pipe['D']+15, -600])

    bolt = get_optimal_bolt(3, base_pipe['D']+5)
    print("Pouzijte srouby M{}x{}".format(bolt['d'], bolt['l']))
    pipe_around = bolt['l']+bolt['k']

    m += tube(vector=v, origin=[30, 0, 0], d=pipe_around, l=25)
    m += tube(vector=v*[-1, 1, 1], origin=[-30, 0, 0], d=pipe_around, l=25)
    m += tube(vector=v2, origin=[0, 0, 0], d=pipe_around, l=25)

    m -= tube(vector=v, origin=[30, 0, 0], d=base_pipe['D'], l=30)
    m -= tube(vector=v*[-1, 1, 1], origin=[-30, 0, 0], d=base_pipe['D'], l=30)
    m -= tube(vector=v2, origin=[0, 0, 0], d=base_pipe['D'], l=30)
        

    for i in [-1, 1]:
        m -= translate(([30,0,0]+v*15)*[i, 1, 1])(
                rotate(get_rotation(v)+[90, 0, 0])(
                    down(bolt['l']/2-bolt['k']/2)(
                        (bolt_hole(bolt, nut=bolt['m']))
                    )
                )
        )

    m -= translate([0,0,0]+v2*15)(
            rotate(get_rotation(v2)+[90, 0, 0])(
                rotate([0,-120,0])(down(bolt['l']/2-bolt['k']/2)(
                    (bolt_hole(bolt, nut=bolt['m']))
                ))
            )
        )

    for y in [-1, 1]:
        m-= translate(np.array([(g3_axis_diameter+10)/2,0,0-5])*[y, 1, 1])(
                bolt_hole(M5, l=10)
            )

    m = intersection()(
            m,
            translate([-250, -250, -500+5])(cube(500))
        )
    return m


model = cube(0)

for x in range(8):
    model += rotate([0, 0, 360/8*x+360/16])(s111g2p03())
for x in range(4):
    pass
    #model += rotate([0, 0, 360/8*(x+)*2])(s111g2p04())


vector = [-g2_octangle_f/2+30, 0, 600]
origin = [g2_octangle_f/2, g2_octangle_f/2, 30]


model += tube(vector=[-g2_octangle_f/2+30, -15, 600], origin=[g2_octangle_f/2, g2_octangle_f/2, 30], d = base_pipe['D'])
model += tube(vector=[-g2_octangle_f/2+30, 15, 600], origin=[g2_octangle_f/2, -g2_octangle_f/2, 30], d = base_pipe['D'])
model += tube(vector=[g2_octangle_f/2-30, -15, 600], origin=[-g2_octangle_f/2, g2_octangle_f/2, 30], d = base_pipe['D'])
model += tube(vector=[g2_octangle_f/2-30, 15, 600], origin=[-g2_octangle_f/2, -g2_octangle_f/2, 30], d = base_pipe['D'])


model += tube(vector=[g2_octangle_f/2, -g2_octangle_f+base_pipe['D']+15, 600], origin=[-g2_octangle_f/2, g2_octangle_f/2-base_pipe['D'], 30], d = base_pipe['D'])
model += tube(vector=[g2_octangle_f/2, g2_octangle_f-base_pipe['D']-15, 600], origin=[-g2_octangle_f/2, -g2_octangle_f/2+base_pipe['D'], 30], d = base_pipe['D'])



model += rotate([0, 0, 0*90+45])(s111g2p05())
model += rotate([0, 0, 1*90+45])(s111g2p05())
model += rotate([0, 0, 2*90+45])(s111g2p05())
model += rotate([0, 0, 3*90+45])(s111g2p05())


for x in [0, 1]:
    model += mirror([0, x, 0])(up(720)(forward(telescope_tube_diameter/2+telescope_side_space)(s111g2p06())))
    model += mirror([0, x, 0])(up(632)(forward(telescope_tube_diameter/2+telescope_side_space+15)(s111g2p07())))


#scad_render_to_file(model, '../scad/111_2003.scad')
#generate_stl(s111g2p01(), '111_2001', '../scad', '../stl')
#generate_preview(s111g2p01(), '111_2001', '../scad', '../preview')
#generate_stl(s111g2p02(), '111_2002', '../scad', '../stl')
#generate_preview(s111g2p02(), '111_2002', '../scad', '../preview')

scad_render_to_file(s111g2p01(), '../scad/111_2001.scad')
scad_render_to_file(s111g2p02(), '../scad/111_2002.scad')
scad_render_to_file(s111g2p03(), '../scad/111_2003.scad')
scad_render_to_file(s111g2p04(), '../scad/111_2004.scad')
scad_render_to_file(s111g2m04(), '../scad/111_2204.scad')
scad_render_to_file(s111g2m05(), '../scad/111_2205.scad')
scad_render_to_file(s111g2p05(), '../scad/111_2005.scad')
scad_render_to_file(s111g2p06(), '../scad/111_2006.scad')
scad_render_to_file(s111g2p07(), '../scad/111_2007.scad')
scad_render_to_file(s111g2p08_a(), '../scad/111_2008a.scad')
scad_render_to_file(s111g2p08_b(), '../scad/111_2008b.scad')
scad_render_to_file(s111g2p08_c(), '../scad/111_2008c.scad')
scad_render_to_file(s111g2p08_d(), '../scad/111_2008d.scad')
scad_render_to_file(s111g2d08(), '../scad/111_2308.scad')
scad_render_to_file(s111g2p09(), '../scad/111_2009.scad')
scad_render_to_file(s111g2d09(), '../scad/111_2309.scad')
#scad_render_to_file(s111g2p03(), '../scad/111_2003.scad')


render = False
if render:
    print("Rendering...")
    cq = 100
    generate(s111g2p01(), '111_2001')
    generate(s111g2p02(), '111_2002')
    generate(s111g2p03(), '111_2003')
    generate(s111g2p04(), '111_2004')
    generate(s111g2m04(), '111_2204')
    generate(s111g2m05(), '111_2205')
    generate(s111g2p05(), '111_2005')
    generate(s111g2p06(), '111_2006')
    generate(s111g2p07(), '111_2007')
    generate(s111g2p08_a(), '111_2008a')
    generate(s111g2p08_b(), '111_2008b')
    generate(s111g2p08_c(), '111_2008c')
    generate(s111g2p08_d(), '111_2008d')
    generate(s111g2p09(), '111_2009')
    generate(s111g2d08(), '111_2308')
    generate(s111g2d09(), '111_2309')


#generate(s111g2p08_c(), '111_2008c')
    
#generate(s111g2p04(), '111_2004')
#generate(s111g2p05(), '111_2005')
#generate(s111g2p09(), '111_2009')
#s111g1_info()


#generate(s111g2p08_a(), '111_2008a')
#generate(s111g2p08_b(), '111_2008b')
generate(s111g2p08_c(), '111_2008c')
generate(s111g2p08_d(), '111_2008d') 
 
************************************************/
